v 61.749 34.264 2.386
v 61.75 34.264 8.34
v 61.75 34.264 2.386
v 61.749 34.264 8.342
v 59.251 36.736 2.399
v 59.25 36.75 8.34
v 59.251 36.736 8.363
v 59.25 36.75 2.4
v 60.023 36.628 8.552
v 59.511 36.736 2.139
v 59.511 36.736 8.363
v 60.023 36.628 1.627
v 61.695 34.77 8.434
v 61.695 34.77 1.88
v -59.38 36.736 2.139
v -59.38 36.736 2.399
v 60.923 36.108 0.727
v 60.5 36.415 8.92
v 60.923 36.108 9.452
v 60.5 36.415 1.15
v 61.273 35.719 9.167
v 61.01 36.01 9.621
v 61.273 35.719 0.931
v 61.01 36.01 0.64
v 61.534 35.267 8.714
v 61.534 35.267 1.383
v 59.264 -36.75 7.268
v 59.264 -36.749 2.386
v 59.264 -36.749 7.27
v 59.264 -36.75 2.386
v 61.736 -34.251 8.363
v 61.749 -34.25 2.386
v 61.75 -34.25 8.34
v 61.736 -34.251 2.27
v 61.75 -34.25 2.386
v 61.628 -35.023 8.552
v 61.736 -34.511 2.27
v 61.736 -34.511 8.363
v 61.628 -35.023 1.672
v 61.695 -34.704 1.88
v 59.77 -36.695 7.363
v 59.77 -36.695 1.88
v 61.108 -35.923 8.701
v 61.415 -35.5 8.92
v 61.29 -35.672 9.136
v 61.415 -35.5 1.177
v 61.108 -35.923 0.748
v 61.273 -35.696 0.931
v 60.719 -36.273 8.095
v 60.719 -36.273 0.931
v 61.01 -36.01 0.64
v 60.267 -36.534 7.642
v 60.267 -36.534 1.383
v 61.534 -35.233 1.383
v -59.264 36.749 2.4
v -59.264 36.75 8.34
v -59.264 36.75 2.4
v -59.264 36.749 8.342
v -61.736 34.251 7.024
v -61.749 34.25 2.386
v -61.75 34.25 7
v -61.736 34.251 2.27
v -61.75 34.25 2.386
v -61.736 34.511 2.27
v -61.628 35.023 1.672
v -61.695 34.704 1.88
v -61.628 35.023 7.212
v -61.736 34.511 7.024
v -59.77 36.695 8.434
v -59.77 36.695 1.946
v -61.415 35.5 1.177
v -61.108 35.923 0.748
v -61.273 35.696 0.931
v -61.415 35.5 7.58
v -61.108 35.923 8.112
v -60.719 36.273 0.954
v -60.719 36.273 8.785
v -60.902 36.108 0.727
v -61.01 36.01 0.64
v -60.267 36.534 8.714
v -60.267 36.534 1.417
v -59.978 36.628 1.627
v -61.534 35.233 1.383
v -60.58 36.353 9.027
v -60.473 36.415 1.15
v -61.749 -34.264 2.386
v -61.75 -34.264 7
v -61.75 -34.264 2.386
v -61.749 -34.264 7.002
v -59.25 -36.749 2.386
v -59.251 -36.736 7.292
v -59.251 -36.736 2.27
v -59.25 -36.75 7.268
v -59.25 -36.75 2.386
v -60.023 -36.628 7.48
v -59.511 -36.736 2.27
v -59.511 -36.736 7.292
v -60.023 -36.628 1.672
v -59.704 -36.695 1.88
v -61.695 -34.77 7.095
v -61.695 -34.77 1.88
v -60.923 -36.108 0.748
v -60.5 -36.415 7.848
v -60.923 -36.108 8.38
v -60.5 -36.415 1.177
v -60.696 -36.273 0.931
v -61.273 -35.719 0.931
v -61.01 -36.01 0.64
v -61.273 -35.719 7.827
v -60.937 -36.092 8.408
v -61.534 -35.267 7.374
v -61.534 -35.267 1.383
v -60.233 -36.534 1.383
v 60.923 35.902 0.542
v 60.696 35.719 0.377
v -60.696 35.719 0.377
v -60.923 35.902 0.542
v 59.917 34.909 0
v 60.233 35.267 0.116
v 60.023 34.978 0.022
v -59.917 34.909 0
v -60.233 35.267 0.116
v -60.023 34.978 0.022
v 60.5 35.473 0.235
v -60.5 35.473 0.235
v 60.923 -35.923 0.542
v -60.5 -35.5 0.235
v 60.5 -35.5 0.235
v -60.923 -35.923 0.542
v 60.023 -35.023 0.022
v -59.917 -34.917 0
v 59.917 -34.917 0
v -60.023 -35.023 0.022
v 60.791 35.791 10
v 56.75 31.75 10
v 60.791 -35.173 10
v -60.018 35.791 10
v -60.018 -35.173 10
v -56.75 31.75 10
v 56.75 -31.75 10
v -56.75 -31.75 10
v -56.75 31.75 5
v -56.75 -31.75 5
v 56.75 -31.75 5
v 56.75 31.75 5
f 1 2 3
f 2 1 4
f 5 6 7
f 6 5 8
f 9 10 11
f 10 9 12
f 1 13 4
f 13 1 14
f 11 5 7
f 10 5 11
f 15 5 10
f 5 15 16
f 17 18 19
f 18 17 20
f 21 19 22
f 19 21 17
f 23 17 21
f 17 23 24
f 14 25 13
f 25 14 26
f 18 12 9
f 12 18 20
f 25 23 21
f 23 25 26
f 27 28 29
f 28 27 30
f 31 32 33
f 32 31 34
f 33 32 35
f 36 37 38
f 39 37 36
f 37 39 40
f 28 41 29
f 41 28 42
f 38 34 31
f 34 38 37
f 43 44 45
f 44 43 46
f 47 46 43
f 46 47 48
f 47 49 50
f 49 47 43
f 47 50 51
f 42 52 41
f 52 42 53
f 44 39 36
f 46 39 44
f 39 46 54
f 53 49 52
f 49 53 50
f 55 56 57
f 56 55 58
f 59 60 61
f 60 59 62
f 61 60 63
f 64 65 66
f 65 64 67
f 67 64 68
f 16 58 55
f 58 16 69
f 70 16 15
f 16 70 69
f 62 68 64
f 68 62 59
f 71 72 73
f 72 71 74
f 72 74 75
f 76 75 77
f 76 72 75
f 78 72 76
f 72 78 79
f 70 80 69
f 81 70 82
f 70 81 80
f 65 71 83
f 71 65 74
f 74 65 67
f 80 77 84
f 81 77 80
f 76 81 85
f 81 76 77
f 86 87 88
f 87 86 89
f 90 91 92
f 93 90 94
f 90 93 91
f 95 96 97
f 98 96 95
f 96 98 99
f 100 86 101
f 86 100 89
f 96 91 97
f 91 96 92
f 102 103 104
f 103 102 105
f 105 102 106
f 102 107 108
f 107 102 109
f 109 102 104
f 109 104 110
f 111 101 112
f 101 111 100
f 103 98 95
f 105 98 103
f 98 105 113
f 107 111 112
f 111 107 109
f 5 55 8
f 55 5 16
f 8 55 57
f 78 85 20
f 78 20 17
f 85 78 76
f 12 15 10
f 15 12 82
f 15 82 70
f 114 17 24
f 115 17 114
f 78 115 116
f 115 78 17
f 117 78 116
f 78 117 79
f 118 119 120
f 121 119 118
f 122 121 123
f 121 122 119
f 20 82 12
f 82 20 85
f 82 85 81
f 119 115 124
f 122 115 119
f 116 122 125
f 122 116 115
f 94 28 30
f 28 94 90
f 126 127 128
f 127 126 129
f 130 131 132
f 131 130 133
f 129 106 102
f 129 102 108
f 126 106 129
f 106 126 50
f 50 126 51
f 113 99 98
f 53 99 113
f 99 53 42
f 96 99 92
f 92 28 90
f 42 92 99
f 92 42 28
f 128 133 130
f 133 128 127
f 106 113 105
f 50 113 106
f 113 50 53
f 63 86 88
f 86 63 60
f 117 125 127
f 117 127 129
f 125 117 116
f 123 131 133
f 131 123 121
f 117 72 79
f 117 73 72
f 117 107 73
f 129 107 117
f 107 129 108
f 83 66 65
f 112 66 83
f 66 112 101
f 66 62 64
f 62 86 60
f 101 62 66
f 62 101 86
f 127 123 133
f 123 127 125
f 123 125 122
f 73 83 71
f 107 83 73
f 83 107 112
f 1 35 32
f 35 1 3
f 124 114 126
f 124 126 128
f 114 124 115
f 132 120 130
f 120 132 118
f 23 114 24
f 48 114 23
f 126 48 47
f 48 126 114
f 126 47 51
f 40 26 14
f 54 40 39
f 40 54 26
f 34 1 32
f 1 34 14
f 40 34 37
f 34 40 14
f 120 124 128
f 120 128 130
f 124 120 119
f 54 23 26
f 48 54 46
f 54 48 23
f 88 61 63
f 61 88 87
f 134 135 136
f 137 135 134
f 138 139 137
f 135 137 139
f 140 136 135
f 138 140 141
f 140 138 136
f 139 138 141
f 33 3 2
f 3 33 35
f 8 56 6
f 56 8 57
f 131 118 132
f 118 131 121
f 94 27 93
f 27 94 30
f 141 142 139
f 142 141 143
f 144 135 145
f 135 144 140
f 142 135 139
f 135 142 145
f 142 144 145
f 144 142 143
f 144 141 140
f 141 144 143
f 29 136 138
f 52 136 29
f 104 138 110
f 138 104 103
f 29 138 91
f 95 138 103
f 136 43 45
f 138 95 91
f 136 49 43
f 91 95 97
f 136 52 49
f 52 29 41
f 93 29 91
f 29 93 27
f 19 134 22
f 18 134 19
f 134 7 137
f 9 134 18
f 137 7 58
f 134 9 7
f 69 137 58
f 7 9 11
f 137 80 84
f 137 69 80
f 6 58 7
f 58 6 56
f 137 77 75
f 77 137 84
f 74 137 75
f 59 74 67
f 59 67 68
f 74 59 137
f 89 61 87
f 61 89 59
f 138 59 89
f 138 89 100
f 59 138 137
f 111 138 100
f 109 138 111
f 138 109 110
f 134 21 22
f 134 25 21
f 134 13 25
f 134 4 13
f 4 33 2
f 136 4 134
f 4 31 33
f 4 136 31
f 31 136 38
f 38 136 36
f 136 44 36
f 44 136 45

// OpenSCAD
bottom_encl();

module bottom_encl(){
    g_w = 123.5;
    g_l = 73.5;
    
    translate([-g_w/2, -g_l/2, 0])
    difference(){
        union(){
        cube([g_w, g_l, 10]);


        }
        union(){
        translate([5, 5, 5])
            cube([g_w-10, g_l-10, 60]);
        }
        
        translate([g_w, g_l, -0.1])
            rotate([0,0,180])
            fillet(60,5);
            
            translate([g_w, 0, -0.1])
            rotate([0,0,90])
            fillet(60,5);
            
       translate([0, g_l, -0.1])
            rotate([0,0,270])
            fillet(60,5);
            
            translate([0, 0, -0.1])
            rotate([0,0,0])
            fillet(60,5);
        
        translate([0, g_l, -0.1])
            rotate([0,90,0])
            rotate([0,0,180])
            fillet(g_w,5);
            
        translate([0, 0, -0.1])
            rotate([0,90,0])
            rotate([0,0,90])
            fillet(g_w,5);
            
        translate([0, g_w, -0.1])
            rotate([90,0,0])
            rotate([0,0,0])
            fillet(g_w,5);
            
        translate([g_w, 0, -0.1])
            rotate([90,0,0])
            rotate([0,0,90])
            fillet(g_w,5);
            
        translate([g_w, 0, -0.1])
            rotate([-90,0,0])
            rotate([0,0,180])
            fillet(g_w,5);
            
        translate([0,1,9])
        rotate([60,0,0])
        translate([0,-22,0])
        cube([130,30,3]);
        
        translate([0,g_l-5,17])
        rotate([-60,0,0])
        translate([0,5,0])
        cube([130,30,3]);
        
        translate([0,0,7])
        rotate([0,-60,0])
        cube([30,105,3]);
        
        translate([g_w-5,0,17])
        rotate([0,60,0])
        cube([30,100,3]);
    }
    /*
    translate([-17,-20,5])
    union(){
        cube([4,10,10]);
        translate([68+4,0,0])
        cube([4,10,10]);
        translate([30,-24+56,0])
        cube([10,4,10]);
    }*/
}

module fillet(h, d){
    difference(){
        cylinder(h=h, d=d, $fn=30);
        union(){
            translate([d/2, d/2, -0.1])
            cylinder(h=h+0.2, d=d, $fn=30);
        }
    }
}
